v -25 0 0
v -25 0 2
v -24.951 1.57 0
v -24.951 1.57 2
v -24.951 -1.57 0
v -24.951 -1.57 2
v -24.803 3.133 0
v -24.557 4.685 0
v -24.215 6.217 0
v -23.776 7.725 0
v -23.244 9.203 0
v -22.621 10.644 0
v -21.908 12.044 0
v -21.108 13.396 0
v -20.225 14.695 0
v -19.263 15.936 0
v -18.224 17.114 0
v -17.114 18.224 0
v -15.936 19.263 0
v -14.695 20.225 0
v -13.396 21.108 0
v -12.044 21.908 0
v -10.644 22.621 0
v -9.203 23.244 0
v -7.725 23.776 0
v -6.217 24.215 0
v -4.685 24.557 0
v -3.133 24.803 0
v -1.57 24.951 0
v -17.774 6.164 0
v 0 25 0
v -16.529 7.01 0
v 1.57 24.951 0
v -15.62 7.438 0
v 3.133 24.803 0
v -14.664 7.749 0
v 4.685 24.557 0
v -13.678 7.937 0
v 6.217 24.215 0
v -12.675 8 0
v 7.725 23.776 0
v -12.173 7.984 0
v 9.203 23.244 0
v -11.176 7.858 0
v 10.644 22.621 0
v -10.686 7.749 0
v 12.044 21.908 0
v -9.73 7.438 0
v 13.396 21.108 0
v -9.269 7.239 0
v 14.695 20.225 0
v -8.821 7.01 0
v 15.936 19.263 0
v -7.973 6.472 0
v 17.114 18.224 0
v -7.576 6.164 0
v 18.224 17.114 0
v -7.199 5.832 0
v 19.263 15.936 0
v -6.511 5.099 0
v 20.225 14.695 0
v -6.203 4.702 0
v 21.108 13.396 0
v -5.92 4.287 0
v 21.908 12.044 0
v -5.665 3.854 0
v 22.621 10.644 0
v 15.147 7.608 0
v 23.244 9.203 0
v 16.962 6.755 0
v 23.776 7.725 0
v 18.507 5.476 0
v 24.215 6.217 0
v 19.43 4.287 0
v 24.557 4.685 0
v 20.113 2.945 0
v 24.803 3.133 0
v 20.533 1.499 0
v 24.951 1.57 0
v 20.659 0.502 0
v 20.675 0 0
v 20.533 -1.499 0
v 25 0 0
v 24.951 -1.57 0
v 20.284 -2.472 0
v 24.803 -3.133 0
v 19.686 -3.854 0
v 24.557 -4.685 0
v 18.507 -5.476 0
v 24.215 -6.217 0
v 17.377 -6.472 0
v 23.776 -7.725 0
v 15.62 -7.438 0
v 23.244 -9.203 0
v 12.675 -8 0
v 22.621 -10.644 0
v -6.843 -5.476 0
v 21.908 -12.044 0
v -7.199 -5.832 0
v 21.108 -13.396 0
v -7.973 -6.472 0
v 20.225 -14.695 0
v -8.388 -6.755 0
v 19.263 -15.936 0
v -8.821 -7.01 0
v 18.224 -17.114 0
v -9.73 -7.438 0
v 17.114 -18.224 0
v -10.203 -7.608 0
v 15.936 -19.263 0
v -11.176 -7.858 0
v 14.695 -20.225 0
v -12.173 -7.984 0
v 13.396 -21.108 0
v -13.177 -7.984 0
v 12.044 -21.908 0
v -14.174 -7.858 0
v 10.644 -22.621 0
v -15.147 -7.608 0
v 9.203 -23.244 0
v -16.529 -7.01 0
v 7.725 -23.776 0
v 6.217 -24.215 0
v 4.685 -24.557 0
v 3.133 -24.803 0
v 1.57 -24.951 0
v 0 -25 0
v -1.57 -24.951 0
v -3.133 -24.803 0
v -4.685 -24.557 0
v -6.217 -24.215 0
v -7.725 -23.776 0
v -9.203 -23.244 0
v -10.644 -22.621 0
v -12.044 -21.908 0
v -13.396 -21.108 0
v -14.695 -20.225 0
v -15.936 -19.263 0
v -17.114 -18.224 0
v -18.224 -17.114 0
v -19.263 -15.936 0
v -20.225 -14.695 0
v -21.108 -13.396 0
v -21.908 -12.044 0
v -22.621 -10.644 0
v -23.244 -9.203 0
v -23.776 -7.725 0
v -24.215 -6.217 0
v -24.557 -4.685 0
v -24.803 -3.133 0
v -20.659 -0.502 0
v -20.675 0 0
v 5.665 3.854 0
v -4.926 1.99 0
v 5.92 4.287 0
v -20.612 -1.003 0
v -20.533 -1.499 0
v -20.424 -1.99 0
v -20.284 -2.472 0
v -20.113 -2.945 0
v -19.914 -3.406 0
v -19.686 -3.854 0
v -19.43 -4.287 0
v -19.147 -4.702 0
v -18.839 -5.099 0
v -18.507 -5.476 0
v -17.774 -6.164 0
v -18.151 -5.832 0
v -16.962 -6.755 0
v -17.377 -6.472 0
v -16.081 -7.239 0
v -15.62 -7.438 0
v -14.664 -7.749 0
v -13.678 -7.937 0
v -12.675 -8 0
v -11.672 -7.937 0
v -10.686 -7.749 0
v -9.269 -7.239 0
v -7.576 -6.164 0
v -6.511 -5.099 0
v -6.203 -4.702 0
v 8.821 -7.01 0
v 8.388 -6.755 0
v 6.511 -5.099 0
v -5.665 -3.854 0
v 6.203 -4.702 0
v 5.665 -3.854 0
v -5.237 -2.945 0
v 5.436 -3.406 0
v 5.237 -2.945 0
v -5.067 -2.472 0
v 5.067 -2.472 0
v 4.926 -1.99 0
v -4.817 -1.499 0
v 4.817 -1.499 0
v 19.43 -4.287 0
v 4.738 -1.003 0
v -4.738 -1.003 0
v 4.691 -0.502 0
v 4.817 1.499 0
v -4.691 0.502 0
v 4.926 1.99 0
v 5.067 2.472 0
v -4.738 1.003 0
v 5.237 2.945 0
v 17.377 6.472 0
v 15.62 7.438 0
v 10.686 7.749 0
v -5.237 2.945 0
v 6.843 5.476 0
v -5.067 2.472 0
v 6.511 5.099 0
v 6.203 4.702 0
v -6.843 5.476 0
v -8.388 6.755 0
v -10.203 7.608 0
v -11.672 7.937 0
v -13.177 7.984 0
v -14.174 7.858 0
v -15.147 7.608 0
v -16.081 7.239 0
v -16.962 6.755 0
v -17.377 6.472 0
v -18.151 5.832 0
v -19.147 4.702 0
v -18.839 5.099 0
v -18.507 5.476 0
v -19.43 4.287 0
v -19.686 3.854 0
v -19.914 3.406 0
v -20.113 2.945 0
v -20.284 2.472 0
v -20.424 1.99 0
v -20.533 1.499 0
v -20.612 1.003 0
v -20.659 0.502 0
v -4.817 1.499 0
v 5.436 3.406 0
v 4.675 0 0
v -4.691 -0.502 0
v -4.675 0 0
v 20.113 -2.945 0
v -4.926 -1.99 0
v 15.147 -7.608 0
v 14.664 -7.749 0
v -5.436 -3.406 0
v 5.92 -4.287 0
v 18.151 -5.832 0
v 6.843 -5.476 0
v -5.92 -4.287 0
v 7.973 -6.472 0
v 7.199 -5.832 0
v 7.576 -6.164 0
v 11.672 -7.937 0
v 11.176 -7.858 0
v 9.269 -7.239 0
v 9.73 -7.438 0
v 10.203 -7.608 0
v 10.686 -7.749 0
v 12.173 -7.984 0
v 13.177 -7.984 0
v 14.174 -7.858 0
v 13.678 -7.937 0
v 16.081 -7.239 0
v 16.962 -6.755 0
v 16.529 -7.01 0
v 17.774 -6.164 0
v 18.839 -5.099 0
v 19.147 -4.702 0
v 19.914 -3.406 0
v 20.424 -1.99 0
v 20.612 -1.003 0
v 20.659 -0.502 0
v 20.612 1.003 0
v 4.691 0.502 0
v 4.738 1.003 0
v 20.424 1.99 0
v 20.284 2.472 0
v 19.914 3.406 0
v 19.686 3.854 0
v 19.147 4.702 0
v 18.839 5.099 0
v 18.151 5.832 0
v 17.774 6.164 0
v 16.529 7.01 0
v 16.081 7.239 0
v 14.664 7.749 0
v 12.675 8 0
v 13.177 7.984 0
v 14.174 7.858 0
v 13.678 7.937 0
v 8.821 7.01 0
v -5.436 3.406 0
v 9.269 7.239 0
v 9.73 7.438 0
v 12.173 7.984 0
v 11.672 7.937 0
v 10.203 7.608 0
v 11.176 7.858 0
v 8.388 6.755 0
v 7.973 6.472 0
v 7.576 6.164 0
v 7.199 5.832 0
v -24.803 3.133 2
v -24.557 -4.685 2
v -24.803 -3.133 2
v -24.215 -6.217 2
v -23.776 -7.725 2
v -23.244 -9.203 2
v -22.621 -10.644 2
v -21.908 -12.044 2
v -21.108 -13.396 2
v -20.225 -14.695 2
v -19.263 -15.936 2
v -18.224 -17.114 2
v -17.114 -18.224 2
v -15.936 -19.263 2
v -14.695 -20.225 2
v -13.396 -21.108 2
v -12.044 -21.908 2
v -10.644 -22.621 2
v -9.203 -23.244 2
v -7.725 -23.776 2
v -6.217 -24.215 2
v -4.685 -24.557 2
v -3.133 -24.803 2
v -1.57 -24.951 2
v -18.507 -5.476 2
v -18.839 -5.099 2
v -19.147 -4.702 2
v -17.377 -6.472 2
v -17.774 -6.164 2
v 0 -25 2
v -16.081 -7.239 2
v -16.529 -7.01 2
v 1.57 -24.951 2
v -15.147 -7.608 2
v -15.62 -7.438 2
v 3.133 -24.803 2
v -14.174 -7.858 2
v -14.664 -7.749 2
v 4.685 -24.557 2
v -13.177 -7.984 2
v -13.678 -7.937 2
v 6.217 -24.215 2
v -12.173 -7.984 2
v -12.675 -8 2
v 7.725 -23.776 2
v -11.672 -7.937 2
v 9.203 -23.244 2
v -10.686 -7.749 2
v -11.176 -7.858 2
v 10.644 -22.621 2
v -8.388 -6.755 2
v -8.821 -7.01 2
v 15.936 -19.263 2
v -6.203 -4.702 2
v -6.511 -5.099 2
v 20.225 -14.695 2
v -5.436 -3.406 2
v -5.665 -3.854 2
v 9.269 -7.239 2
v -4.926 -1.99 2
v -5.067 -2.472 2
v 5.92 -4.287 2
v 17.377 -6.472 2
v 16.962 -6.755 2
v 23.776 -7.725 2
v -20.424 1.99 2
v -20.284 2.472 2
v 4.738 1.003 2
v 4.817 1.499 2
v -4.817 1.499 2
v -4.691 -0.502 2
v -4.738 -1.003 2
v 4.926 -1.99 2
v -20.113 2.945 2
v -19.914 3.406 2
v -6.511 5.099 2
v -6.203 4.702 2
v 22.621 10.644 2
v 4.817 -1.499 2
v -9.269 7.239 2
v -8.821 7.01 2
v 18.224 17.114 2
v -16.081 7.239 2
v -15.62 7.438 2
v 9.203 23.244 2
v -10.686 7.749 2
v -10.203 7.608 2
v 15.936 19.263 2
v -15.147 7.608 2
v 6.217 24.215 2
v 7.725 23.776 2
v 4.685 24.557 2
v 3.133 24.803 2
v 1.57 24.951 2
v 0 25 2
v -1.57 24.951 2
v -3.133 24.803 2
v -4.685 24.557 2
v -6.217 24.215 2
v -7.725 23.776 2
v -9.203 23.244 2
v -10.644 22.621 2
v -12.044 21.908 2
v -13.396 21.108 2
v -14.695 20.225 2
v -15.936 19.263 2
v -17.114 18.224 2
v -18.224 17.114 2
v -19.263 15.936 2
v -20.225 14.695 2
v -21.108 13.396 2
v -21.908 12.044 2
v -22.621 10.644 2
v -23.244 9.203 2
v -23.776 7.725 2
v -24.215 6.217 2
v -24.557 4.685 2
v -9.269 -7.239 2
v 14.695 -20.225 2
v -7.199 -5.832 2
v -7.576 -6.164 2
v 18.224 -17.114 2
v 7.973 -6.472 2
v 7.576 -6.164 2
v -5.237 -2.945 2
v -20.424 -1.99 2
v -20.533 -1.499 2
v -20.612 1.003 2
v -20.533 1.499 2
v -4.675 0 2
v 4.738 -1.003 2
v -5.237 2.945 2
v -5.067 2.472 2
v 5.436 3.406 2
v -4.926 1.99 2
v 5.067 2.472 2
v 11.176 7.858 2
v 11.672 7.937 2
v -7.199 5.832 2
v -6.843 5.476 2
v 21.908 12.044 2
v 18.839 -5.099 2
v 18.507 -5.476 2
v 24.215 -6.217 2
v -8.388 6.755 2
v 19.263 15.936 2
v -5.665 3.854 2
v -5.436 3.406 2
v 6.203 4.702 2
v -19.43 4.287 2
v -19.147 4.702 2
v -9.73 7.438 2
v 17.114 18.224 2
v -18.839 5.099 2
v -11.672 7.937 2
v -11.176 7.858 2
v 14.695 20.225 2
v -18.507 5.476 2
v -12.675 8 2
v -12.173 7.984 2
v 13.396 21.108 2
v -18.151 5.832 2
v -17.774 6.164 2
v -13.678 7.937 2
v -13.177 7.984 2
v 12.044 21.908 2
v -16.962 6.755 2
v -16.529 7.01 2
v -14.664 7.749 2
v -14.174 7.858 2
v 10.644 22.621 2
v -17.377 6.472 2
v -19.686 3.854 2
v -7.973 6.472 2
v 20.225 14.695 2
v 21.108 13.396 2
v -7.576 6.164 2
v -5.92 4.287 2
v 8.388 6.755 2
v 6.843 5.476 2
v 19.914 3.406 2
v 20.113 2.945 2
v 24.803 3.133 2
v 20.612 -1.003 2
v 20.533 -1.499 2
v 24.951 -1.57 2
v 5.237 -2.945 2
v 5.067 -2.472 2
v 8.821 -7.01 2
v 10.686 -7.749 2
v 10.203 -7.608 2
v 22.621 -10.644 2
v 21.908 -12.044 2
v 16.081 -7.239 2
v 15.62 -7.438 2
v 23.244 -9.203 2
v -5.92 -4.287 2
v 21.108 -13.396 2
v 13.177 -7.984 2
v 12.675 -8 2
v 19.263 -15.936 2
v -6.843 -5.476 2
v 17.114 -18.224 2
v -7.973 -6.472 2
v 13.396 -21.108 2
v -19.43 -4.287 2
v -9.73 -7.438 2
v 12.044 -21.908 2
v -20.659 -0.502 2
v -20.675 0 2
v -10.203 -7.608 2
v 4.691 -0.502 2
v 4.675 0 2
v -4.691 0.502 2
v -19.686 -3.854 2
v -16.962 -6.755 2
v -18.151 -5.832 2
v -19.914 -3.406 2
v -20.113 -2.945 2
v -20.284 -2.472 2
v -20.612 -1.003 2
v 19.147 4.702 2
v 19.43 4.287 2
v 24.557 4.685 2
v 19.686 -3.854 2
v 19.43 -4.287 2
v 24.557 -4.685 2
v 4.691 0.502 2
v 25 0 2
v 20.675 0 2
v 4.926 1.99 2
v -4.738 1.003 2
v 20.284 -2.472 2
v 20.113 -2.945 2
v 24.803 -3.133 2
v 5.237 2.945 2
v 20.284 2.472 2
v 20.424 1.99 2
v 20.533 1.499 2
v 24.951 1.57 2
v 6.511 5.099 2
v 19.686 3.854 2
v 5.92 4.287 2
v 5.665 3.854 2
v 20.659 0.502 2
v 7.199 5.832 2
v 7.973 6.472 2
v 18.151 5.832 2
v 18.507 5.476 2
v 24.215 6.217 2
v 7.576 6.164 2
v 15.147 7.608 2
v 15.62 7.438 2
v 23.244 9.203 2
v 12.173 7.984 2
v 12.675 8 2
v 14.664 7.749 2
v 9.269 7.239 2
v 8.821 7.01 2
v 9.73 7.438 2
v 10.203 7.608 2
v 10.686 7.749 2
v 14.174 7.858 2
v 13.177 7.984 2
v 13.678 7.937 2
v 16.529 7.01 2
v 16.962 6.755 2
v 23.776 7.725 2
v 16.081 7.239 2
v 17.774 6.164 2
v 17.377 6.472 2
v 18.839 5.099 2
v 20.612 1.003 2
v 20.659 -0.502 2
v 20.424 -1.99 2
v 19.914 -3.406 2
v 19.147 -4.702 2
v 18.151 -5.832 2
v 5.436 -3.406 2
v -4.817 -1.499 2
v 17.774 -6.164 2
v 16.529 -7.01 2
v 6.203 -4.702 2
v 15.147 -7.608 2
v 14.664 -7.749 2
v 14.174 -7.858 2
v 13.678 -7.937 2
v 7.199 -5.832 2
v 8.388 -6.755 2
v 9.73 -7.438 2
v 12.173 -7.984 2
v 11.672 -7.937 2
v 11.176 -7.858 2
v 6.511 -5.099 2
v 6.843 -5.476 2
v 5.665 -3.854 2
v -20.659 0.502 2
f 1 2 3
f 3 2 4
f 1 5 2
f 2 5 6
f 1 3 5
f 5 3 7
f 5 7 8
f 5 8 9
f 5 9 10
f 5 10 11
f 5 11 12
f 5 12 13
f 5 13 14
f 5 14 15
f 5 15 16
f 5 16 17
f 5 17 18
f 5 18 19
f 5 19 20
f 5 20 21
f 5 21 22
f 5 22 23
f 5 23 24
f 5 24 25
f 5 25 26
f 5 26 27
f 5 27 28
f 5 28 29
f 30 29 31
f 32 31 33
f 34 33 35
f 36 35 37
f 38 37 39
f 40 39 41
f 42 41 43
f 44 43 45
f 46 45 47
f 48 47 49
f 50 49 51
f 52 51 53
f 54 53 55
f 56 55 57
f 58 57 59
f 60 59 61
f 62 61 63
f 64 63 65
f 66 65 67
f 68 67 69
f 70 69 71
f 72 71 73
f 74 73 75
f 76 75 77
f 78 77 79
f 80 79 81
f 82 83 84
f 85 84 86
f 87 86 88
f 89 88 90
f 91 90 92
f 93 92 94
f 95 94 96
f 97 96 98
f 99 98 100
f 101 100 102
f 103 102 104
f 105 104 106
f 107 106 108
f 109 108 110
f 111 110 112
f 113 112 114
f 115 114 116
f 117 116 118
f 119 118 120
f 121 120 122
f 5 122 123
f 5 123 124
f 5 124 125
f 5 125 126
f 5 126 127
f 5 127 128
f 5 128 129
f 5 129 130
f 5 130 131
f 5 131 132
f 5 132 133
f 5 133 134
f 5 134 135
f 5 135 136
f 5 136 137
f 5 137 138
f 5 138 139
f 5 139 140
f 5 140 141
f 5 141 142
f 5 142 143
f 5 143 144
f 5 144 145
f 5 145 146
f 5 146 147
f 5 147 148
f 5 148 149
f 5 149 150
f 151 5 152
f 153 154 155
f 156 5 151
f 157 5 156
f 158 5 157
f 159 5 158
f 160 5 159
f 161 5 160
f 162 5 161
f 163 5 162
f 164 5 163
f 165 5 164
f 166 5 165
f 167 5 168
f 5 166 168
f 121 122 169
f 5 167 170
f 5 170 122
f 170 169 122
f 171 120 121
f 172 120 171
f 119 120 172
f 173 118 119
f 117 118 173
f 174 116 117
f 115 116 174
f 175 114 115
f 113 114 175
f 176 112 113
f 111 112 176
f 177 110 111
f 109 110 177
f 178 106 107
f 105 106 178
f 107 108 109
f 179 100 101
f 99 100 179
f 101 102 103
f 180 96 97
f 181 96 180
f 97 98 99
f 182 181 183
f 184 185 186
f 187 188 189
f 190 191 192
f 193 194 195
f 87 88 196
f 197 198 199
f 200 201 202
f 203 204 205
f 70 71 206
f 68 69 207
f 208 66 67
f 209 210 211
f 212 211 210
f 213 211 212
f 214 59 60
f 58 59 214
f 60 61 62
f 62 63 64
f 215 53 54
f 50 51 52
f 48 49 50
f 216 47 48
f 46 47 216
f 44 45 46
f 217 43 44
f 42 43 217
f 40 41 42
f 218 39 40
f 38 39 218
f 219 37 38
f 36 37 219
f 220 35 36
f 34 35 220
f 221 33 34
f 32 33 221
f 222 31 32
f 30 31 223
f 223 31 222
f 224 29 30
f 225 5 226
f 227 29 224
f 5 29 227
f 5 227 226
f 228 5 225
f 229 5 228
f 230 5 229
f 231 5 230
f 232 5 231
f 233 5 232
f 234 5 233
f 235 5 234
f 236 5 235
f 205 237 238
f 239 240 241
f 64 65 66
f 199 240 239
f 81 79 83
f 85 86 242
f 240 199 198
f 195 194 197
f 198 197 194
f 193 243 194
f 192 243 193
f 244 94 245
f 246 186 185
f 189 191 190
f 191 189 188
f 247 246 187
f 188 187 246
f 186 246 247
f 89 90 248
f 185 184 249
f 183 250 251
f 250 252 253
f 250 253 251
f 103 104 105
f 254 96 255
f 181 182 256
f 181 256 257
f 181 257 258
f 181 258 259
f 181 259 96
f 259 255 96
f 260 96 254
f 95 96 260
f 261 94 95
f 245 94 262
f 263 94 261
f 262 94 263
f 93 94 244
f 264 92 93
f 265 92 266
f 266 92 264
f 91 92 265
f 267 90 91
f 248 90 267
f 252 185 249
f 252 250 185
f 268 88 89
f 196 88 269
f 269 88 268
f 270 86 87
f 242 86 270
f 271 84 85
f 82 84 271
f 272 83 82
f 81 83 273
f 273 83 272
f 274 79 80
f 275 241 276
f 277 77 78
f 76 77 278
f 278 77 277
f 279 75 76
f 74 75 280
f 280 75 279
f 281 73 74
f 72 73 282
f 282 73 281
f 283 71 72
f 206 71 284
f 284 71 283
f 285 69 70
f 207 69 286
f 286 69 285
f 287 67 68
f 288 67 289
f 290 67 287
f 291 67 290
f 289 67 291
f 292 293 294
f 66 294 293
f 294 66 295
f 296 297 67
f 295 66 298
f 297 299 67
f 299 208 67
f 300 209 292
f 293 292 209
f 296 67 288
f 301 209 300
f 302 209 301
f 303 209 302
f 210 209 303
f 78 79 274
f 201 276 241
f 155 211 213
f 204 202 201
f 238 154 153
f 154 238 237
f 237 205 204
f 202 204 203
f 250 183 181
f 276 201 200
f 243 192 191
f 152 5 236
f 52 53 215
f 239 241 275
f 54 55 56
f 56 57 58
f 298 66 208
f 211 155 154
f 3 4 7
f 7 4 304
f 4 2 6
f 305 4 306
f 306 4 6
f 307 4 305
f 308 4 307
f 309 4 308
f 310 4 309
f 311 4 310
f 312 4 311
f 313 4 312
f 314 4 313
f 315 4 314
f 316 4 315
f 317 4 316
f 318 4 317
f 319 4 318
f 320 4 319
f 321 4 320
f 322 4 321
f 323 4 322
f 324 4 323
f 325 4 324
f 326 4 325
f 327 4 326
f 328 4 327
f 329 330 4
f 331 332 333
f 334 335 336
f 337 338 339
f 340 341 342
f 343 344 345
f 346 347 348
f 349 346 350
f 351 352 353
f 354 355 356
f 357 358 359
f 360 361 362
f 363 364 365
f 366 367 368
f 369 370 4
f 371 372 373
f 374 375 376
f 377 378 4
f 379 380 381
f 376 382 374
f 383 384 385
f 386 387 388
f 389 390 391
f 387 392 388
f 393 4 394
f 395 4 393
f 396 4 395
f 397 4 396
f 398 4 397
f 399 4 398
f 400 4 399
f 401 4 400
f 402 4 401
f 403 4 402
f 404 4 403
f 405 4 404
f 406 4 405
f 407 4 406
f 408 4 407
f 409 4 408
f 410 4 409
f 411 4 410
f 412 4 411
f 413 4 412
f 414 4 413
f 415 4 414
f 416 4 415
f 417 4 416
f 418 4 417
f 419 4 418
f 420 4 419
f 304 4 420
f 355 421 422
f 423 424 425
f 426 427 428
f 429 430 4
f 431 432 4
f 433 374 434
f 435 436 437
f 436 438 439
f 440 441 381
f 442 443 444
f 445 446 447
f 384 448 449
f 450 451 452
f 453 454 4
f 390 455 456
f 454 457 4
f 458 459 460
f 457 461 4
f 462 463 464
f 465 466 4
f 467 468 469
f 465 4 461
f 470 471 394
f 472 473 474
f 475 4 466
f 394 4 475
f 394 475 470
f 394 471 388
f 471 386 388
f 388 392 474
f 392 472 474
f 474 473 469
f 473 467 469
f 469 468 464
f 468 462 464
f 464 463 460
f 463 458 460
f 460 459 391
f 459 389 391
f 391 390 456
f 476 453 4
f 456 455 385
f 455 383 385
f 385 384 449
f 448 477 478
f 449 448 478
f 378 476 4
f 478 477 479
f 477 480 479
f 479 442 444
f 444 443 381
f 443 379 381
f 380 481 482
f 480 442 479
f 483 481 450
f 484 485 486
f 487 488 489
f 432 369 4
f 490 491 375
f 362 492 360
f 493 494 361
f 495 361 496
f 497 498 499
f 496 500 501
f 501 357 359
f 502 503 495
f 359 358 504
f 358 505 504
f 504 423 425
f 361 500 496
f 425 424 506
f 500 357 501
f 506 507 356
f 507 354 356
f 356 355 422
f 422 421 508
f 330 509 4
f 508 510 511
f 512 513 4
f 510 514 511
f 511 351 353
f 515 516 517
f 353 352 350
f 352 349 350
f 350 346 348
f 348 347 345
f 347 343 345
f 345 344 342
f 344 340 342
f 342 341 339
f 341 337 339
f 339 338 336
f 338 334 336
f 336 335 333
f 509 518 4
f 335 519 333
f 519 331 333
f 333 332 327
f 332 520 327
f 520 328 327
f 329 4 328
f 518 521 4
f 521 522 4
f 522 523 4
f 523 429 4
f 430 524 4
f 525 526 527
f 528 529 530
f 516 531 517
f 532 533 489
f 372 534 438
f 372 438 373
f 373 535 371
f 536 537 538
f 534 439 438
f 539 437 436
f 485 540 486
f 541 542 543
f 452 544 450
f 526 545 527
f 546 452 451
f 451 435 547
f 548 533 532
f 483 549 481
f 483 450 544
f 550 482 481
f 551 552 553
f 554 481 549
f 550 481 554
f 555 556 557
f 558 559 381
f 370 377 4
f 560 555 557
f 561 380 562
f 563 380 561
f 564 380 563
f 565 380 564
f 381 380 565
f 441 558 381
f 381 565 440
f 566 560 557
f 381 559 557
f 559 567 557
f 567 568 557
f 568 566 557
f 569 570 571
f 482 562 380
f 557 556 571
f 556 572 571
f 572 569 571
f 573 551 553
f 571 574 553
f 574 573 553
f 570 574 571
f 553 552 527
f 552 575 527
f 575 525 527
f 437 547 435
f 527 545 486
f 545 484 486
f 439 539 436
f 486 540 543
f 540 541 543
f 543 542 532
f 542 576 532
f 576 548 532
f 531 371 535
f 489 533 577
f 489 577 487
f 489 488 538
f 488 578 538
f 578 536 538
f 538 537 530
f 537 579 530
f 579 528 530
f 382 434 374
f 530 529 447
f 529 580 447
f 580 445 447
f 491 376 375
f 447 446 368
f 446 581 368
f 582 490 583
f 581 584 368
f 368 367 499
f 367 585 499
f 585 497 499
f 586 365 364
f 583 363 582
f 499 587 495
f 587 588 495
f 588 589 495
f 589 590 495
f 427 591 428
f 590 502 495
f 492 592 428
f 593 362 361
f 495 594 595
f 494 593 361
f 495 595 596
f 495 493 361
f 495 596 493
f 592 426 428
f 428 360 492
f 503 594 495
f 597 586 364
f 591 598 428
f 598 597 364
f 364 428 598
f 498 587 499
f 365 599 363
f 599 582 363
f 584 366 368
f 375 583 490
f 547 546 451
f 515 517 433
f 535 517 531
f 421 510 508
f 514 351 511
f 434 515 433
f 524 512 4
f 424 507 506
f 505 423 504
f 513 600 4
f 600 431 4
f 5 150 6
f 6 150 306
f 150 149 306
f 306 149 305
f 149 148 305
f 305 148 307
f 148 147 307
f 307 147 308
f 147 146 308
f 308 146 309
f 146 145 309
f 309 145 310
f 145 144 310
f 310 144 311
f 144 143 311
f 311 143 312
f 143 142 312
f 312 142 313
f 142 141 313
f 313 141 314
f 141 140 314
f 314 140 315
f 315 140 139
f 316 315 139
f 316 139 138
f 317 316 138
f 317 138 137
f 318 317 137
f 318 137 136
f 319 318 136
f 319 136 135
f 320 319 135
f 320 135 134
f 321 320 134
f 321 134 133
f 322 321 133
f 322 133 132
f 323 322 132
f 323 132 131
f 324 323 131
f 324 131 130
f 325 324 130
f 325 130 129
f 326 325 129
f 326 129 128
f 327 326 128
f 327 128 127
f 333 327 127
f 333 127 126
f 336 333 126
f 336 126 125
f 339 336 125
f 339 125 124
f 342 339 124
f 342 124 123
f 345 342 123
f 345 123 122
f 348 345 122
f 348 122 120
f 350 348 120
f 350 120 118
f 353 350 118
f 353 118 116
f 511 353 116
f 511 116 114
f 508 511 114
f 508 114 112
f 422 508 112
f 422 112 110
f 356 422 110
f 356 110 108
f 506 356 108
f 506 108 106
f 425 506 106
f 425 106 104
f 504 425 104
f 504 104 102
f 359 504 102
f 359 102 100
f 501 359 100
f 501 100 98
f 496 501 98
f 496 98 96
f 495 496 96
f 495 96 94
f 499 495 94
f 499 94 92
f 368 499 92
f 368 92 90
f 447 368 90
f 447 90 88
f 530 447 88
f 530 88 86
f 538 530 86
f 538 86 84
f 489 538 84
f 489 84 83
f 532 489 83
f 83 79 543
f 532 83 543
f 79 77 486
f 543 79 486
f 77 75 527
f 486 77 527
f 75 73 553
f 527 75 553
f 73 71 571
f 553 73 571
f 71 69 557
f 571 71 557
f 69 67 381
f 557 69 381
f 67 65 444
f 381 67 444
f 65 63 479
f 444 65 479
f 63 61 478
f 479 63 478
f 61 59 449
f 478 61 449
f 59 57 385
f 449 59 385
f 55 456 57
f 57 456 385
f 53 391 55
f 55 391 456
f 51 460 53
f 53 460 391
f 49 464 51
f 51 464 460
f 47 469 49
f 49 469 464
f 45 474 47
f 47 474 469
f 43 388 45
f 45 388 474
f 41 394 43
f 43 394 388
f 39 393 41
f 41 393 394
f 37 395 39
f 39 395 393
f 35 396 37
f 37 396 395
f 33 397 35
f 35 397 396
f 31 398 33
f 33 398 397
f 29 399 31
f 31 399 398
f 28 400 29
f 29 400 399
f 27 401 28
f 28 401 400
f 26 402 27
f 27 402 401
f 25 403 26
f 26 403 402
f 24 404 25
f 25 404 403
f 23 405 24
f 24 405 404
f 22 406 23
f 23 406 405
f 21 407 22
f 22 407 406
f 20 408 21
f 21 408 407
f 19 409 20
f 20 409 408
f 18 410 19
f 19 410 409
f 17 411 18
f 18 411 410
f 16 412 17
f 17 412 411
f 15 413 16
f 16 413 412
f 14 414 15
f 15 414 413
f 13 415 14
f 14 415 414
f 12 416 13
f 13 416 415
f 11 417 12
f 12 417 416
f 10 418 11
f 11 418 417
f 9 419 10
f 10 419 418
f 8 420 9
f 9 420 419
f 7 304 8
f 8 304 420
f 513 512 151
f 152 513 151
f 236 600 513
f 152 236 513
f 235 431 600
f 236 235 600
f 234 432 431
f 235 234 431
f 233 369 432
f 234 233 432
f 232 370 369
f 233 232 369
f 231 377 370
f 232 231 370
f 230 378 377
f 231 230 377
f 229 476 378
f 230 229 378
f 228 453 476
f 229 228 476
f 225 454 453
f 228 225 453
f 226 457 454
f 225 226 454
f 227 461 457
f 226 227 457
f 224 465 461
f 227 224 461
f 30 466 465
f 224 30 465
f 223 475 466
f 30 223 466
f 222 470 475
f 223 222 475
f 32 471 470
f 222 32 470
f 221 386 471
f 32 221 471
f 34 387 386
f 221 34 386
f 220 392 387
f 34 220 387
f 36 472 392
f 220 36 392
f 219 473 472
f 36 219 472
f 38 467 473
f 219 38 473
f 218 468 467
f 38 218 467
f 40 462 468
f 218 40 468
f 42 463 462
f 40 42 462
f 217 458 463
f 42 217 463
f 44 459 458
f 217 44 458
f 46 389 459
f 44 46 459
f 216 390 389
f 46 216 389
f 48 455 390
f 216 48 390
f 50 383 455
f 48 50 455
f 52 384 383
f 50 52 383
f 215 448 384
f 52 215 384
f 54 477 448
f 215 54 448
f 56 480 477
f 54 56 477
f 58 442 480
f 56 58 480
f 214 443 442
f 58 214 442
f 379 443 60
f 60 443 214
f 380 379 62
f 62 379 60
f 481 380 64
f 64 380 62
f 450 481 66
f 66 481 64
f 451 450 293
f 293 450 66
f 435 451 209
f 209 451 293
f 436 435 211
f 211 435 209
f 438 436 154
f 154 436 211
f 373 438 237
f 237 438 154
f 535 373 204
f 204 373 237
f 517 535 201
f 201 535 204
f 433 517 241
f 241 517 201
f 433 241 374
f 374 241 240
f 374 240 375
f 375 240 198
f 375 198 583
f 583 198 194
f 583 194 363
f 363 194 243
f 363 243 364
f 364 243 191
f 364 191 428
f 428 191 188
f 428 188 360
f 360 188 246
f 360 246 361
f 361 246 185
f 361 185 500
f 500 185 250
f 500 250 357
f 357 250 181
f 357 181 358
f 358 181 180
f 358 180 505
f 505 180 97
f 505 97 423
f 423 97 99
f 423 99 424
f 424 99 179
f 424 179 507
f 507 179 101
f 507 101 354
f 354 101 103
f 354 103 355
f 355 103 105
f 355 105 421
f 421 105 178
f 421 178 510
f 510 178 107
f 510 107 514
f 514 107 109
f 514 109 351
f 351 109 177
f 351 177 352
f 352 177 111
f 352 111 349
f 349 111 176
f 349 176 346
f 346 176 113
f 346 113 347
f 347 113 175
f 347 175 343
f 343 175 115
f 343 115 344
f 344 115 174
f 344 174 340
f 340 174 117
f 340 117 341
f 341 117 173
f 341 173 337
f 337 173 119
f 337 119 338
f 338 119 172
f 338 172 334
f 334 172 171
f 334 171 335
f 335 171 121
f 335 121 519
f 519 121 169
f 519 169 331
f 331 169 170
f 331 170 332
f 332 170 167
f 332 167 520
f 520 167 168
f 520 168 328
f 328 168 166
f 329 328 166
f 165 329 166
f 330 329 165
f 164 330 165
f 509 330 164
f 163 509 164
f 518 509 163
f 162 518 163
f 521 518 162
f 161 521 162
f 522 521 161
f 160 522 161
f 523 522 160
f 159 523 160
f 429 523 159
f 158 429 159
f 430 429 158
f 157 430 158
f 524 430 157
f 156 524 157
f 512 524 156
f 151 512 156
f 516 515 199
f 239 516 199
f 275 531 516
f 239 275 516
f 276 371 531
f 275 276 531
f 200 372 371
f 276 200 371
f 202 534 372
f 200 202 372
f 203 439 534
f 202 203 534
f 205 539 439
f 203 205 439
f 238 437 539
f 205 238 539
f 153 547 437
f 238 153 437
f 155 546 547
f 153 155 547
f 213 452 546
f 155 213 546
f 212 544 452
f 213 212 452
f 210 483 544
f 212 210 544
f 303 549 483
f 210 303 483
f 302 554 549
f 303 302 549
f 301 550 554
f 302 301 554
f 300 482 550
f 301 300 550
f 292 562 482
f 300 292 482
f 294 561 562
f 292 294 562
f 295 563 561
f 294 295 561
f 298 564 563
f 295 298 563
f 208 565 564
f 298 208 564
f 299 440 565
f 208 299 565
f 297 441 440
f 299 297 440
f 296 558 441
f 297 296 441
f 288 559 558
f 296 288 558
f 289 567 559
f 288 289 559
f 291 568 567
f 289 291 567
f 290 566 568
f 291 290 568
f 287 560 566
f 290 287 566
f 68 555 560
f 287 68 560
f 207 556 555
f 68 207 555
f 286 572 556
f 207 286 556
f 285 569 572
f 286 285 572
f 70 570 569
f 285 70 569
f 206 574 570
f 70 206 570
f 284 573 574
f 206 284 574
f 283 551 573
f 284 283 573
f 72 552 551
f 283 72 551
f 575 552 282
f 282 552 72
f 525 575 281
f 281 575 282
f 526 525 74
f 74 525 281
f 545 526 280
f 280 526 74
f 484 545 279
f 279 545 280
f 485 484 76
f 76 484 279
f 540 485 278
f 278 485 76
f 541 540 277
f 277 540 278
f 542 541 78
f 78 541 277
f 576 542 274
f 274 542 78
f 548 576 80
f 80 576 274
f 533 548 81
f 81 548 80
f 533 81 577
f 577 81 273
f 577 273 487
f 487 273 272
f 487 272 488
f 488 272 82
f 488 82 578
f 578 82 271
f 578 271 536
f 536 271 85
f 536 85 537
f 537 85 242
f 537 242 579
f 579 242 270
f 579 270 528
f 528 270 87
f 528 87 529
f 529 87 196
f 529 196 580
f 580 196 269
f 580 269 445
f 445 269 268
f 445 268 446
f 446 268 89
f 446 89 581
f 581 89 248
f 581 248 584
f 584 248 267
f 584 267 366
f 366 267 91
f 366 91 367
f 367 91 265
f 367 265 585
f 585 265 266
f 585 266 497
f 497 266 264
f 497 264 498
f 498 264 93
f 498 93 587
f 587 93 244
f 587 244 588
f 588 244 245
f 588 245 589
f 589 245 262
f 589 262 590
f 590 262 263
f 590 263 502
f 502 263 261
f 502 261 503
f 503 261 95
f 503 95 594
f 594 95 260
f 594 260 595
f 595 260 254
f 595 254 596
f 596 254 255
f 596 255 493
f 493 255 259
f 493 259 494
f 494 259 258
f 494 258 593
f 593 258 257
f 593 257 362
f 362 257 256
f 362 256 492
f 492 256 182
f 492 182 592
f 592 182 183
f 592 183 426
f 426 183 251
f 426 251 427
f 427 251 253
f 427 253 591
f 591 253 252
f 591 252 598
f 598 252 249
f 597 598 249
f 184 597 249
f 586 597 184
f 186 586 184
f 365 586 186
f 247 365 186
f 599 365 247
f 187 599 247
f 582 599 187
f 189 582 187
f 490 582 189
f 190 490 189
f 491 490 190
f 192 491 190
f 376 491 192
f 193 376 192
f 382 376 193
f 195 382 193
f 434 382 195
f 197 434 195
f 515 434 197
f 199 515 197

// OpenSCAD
$fn=100;
radius_fudge_factor=0; //.4*2;

sensor_r=16/2+radius_fudge_factor;
cap_r=2*25/2;

heights=1*25;

sensor_gap=9.35+2*sensor_r-2*radius_fudge_factor;


intersection(){
	difference(){
		cylinder(r=cap_r, h=heights);
		union(){
			translate([sensor_gap/2,0,-1])
				cylinder(r=sensor_r, h=heights+2);
			translate([-sensor_gap/2,0,-1])
				cylinder(r=sensor_r, h=heights+2);
		}
	}
	cylinder(r=cap_r, h=2);
}
